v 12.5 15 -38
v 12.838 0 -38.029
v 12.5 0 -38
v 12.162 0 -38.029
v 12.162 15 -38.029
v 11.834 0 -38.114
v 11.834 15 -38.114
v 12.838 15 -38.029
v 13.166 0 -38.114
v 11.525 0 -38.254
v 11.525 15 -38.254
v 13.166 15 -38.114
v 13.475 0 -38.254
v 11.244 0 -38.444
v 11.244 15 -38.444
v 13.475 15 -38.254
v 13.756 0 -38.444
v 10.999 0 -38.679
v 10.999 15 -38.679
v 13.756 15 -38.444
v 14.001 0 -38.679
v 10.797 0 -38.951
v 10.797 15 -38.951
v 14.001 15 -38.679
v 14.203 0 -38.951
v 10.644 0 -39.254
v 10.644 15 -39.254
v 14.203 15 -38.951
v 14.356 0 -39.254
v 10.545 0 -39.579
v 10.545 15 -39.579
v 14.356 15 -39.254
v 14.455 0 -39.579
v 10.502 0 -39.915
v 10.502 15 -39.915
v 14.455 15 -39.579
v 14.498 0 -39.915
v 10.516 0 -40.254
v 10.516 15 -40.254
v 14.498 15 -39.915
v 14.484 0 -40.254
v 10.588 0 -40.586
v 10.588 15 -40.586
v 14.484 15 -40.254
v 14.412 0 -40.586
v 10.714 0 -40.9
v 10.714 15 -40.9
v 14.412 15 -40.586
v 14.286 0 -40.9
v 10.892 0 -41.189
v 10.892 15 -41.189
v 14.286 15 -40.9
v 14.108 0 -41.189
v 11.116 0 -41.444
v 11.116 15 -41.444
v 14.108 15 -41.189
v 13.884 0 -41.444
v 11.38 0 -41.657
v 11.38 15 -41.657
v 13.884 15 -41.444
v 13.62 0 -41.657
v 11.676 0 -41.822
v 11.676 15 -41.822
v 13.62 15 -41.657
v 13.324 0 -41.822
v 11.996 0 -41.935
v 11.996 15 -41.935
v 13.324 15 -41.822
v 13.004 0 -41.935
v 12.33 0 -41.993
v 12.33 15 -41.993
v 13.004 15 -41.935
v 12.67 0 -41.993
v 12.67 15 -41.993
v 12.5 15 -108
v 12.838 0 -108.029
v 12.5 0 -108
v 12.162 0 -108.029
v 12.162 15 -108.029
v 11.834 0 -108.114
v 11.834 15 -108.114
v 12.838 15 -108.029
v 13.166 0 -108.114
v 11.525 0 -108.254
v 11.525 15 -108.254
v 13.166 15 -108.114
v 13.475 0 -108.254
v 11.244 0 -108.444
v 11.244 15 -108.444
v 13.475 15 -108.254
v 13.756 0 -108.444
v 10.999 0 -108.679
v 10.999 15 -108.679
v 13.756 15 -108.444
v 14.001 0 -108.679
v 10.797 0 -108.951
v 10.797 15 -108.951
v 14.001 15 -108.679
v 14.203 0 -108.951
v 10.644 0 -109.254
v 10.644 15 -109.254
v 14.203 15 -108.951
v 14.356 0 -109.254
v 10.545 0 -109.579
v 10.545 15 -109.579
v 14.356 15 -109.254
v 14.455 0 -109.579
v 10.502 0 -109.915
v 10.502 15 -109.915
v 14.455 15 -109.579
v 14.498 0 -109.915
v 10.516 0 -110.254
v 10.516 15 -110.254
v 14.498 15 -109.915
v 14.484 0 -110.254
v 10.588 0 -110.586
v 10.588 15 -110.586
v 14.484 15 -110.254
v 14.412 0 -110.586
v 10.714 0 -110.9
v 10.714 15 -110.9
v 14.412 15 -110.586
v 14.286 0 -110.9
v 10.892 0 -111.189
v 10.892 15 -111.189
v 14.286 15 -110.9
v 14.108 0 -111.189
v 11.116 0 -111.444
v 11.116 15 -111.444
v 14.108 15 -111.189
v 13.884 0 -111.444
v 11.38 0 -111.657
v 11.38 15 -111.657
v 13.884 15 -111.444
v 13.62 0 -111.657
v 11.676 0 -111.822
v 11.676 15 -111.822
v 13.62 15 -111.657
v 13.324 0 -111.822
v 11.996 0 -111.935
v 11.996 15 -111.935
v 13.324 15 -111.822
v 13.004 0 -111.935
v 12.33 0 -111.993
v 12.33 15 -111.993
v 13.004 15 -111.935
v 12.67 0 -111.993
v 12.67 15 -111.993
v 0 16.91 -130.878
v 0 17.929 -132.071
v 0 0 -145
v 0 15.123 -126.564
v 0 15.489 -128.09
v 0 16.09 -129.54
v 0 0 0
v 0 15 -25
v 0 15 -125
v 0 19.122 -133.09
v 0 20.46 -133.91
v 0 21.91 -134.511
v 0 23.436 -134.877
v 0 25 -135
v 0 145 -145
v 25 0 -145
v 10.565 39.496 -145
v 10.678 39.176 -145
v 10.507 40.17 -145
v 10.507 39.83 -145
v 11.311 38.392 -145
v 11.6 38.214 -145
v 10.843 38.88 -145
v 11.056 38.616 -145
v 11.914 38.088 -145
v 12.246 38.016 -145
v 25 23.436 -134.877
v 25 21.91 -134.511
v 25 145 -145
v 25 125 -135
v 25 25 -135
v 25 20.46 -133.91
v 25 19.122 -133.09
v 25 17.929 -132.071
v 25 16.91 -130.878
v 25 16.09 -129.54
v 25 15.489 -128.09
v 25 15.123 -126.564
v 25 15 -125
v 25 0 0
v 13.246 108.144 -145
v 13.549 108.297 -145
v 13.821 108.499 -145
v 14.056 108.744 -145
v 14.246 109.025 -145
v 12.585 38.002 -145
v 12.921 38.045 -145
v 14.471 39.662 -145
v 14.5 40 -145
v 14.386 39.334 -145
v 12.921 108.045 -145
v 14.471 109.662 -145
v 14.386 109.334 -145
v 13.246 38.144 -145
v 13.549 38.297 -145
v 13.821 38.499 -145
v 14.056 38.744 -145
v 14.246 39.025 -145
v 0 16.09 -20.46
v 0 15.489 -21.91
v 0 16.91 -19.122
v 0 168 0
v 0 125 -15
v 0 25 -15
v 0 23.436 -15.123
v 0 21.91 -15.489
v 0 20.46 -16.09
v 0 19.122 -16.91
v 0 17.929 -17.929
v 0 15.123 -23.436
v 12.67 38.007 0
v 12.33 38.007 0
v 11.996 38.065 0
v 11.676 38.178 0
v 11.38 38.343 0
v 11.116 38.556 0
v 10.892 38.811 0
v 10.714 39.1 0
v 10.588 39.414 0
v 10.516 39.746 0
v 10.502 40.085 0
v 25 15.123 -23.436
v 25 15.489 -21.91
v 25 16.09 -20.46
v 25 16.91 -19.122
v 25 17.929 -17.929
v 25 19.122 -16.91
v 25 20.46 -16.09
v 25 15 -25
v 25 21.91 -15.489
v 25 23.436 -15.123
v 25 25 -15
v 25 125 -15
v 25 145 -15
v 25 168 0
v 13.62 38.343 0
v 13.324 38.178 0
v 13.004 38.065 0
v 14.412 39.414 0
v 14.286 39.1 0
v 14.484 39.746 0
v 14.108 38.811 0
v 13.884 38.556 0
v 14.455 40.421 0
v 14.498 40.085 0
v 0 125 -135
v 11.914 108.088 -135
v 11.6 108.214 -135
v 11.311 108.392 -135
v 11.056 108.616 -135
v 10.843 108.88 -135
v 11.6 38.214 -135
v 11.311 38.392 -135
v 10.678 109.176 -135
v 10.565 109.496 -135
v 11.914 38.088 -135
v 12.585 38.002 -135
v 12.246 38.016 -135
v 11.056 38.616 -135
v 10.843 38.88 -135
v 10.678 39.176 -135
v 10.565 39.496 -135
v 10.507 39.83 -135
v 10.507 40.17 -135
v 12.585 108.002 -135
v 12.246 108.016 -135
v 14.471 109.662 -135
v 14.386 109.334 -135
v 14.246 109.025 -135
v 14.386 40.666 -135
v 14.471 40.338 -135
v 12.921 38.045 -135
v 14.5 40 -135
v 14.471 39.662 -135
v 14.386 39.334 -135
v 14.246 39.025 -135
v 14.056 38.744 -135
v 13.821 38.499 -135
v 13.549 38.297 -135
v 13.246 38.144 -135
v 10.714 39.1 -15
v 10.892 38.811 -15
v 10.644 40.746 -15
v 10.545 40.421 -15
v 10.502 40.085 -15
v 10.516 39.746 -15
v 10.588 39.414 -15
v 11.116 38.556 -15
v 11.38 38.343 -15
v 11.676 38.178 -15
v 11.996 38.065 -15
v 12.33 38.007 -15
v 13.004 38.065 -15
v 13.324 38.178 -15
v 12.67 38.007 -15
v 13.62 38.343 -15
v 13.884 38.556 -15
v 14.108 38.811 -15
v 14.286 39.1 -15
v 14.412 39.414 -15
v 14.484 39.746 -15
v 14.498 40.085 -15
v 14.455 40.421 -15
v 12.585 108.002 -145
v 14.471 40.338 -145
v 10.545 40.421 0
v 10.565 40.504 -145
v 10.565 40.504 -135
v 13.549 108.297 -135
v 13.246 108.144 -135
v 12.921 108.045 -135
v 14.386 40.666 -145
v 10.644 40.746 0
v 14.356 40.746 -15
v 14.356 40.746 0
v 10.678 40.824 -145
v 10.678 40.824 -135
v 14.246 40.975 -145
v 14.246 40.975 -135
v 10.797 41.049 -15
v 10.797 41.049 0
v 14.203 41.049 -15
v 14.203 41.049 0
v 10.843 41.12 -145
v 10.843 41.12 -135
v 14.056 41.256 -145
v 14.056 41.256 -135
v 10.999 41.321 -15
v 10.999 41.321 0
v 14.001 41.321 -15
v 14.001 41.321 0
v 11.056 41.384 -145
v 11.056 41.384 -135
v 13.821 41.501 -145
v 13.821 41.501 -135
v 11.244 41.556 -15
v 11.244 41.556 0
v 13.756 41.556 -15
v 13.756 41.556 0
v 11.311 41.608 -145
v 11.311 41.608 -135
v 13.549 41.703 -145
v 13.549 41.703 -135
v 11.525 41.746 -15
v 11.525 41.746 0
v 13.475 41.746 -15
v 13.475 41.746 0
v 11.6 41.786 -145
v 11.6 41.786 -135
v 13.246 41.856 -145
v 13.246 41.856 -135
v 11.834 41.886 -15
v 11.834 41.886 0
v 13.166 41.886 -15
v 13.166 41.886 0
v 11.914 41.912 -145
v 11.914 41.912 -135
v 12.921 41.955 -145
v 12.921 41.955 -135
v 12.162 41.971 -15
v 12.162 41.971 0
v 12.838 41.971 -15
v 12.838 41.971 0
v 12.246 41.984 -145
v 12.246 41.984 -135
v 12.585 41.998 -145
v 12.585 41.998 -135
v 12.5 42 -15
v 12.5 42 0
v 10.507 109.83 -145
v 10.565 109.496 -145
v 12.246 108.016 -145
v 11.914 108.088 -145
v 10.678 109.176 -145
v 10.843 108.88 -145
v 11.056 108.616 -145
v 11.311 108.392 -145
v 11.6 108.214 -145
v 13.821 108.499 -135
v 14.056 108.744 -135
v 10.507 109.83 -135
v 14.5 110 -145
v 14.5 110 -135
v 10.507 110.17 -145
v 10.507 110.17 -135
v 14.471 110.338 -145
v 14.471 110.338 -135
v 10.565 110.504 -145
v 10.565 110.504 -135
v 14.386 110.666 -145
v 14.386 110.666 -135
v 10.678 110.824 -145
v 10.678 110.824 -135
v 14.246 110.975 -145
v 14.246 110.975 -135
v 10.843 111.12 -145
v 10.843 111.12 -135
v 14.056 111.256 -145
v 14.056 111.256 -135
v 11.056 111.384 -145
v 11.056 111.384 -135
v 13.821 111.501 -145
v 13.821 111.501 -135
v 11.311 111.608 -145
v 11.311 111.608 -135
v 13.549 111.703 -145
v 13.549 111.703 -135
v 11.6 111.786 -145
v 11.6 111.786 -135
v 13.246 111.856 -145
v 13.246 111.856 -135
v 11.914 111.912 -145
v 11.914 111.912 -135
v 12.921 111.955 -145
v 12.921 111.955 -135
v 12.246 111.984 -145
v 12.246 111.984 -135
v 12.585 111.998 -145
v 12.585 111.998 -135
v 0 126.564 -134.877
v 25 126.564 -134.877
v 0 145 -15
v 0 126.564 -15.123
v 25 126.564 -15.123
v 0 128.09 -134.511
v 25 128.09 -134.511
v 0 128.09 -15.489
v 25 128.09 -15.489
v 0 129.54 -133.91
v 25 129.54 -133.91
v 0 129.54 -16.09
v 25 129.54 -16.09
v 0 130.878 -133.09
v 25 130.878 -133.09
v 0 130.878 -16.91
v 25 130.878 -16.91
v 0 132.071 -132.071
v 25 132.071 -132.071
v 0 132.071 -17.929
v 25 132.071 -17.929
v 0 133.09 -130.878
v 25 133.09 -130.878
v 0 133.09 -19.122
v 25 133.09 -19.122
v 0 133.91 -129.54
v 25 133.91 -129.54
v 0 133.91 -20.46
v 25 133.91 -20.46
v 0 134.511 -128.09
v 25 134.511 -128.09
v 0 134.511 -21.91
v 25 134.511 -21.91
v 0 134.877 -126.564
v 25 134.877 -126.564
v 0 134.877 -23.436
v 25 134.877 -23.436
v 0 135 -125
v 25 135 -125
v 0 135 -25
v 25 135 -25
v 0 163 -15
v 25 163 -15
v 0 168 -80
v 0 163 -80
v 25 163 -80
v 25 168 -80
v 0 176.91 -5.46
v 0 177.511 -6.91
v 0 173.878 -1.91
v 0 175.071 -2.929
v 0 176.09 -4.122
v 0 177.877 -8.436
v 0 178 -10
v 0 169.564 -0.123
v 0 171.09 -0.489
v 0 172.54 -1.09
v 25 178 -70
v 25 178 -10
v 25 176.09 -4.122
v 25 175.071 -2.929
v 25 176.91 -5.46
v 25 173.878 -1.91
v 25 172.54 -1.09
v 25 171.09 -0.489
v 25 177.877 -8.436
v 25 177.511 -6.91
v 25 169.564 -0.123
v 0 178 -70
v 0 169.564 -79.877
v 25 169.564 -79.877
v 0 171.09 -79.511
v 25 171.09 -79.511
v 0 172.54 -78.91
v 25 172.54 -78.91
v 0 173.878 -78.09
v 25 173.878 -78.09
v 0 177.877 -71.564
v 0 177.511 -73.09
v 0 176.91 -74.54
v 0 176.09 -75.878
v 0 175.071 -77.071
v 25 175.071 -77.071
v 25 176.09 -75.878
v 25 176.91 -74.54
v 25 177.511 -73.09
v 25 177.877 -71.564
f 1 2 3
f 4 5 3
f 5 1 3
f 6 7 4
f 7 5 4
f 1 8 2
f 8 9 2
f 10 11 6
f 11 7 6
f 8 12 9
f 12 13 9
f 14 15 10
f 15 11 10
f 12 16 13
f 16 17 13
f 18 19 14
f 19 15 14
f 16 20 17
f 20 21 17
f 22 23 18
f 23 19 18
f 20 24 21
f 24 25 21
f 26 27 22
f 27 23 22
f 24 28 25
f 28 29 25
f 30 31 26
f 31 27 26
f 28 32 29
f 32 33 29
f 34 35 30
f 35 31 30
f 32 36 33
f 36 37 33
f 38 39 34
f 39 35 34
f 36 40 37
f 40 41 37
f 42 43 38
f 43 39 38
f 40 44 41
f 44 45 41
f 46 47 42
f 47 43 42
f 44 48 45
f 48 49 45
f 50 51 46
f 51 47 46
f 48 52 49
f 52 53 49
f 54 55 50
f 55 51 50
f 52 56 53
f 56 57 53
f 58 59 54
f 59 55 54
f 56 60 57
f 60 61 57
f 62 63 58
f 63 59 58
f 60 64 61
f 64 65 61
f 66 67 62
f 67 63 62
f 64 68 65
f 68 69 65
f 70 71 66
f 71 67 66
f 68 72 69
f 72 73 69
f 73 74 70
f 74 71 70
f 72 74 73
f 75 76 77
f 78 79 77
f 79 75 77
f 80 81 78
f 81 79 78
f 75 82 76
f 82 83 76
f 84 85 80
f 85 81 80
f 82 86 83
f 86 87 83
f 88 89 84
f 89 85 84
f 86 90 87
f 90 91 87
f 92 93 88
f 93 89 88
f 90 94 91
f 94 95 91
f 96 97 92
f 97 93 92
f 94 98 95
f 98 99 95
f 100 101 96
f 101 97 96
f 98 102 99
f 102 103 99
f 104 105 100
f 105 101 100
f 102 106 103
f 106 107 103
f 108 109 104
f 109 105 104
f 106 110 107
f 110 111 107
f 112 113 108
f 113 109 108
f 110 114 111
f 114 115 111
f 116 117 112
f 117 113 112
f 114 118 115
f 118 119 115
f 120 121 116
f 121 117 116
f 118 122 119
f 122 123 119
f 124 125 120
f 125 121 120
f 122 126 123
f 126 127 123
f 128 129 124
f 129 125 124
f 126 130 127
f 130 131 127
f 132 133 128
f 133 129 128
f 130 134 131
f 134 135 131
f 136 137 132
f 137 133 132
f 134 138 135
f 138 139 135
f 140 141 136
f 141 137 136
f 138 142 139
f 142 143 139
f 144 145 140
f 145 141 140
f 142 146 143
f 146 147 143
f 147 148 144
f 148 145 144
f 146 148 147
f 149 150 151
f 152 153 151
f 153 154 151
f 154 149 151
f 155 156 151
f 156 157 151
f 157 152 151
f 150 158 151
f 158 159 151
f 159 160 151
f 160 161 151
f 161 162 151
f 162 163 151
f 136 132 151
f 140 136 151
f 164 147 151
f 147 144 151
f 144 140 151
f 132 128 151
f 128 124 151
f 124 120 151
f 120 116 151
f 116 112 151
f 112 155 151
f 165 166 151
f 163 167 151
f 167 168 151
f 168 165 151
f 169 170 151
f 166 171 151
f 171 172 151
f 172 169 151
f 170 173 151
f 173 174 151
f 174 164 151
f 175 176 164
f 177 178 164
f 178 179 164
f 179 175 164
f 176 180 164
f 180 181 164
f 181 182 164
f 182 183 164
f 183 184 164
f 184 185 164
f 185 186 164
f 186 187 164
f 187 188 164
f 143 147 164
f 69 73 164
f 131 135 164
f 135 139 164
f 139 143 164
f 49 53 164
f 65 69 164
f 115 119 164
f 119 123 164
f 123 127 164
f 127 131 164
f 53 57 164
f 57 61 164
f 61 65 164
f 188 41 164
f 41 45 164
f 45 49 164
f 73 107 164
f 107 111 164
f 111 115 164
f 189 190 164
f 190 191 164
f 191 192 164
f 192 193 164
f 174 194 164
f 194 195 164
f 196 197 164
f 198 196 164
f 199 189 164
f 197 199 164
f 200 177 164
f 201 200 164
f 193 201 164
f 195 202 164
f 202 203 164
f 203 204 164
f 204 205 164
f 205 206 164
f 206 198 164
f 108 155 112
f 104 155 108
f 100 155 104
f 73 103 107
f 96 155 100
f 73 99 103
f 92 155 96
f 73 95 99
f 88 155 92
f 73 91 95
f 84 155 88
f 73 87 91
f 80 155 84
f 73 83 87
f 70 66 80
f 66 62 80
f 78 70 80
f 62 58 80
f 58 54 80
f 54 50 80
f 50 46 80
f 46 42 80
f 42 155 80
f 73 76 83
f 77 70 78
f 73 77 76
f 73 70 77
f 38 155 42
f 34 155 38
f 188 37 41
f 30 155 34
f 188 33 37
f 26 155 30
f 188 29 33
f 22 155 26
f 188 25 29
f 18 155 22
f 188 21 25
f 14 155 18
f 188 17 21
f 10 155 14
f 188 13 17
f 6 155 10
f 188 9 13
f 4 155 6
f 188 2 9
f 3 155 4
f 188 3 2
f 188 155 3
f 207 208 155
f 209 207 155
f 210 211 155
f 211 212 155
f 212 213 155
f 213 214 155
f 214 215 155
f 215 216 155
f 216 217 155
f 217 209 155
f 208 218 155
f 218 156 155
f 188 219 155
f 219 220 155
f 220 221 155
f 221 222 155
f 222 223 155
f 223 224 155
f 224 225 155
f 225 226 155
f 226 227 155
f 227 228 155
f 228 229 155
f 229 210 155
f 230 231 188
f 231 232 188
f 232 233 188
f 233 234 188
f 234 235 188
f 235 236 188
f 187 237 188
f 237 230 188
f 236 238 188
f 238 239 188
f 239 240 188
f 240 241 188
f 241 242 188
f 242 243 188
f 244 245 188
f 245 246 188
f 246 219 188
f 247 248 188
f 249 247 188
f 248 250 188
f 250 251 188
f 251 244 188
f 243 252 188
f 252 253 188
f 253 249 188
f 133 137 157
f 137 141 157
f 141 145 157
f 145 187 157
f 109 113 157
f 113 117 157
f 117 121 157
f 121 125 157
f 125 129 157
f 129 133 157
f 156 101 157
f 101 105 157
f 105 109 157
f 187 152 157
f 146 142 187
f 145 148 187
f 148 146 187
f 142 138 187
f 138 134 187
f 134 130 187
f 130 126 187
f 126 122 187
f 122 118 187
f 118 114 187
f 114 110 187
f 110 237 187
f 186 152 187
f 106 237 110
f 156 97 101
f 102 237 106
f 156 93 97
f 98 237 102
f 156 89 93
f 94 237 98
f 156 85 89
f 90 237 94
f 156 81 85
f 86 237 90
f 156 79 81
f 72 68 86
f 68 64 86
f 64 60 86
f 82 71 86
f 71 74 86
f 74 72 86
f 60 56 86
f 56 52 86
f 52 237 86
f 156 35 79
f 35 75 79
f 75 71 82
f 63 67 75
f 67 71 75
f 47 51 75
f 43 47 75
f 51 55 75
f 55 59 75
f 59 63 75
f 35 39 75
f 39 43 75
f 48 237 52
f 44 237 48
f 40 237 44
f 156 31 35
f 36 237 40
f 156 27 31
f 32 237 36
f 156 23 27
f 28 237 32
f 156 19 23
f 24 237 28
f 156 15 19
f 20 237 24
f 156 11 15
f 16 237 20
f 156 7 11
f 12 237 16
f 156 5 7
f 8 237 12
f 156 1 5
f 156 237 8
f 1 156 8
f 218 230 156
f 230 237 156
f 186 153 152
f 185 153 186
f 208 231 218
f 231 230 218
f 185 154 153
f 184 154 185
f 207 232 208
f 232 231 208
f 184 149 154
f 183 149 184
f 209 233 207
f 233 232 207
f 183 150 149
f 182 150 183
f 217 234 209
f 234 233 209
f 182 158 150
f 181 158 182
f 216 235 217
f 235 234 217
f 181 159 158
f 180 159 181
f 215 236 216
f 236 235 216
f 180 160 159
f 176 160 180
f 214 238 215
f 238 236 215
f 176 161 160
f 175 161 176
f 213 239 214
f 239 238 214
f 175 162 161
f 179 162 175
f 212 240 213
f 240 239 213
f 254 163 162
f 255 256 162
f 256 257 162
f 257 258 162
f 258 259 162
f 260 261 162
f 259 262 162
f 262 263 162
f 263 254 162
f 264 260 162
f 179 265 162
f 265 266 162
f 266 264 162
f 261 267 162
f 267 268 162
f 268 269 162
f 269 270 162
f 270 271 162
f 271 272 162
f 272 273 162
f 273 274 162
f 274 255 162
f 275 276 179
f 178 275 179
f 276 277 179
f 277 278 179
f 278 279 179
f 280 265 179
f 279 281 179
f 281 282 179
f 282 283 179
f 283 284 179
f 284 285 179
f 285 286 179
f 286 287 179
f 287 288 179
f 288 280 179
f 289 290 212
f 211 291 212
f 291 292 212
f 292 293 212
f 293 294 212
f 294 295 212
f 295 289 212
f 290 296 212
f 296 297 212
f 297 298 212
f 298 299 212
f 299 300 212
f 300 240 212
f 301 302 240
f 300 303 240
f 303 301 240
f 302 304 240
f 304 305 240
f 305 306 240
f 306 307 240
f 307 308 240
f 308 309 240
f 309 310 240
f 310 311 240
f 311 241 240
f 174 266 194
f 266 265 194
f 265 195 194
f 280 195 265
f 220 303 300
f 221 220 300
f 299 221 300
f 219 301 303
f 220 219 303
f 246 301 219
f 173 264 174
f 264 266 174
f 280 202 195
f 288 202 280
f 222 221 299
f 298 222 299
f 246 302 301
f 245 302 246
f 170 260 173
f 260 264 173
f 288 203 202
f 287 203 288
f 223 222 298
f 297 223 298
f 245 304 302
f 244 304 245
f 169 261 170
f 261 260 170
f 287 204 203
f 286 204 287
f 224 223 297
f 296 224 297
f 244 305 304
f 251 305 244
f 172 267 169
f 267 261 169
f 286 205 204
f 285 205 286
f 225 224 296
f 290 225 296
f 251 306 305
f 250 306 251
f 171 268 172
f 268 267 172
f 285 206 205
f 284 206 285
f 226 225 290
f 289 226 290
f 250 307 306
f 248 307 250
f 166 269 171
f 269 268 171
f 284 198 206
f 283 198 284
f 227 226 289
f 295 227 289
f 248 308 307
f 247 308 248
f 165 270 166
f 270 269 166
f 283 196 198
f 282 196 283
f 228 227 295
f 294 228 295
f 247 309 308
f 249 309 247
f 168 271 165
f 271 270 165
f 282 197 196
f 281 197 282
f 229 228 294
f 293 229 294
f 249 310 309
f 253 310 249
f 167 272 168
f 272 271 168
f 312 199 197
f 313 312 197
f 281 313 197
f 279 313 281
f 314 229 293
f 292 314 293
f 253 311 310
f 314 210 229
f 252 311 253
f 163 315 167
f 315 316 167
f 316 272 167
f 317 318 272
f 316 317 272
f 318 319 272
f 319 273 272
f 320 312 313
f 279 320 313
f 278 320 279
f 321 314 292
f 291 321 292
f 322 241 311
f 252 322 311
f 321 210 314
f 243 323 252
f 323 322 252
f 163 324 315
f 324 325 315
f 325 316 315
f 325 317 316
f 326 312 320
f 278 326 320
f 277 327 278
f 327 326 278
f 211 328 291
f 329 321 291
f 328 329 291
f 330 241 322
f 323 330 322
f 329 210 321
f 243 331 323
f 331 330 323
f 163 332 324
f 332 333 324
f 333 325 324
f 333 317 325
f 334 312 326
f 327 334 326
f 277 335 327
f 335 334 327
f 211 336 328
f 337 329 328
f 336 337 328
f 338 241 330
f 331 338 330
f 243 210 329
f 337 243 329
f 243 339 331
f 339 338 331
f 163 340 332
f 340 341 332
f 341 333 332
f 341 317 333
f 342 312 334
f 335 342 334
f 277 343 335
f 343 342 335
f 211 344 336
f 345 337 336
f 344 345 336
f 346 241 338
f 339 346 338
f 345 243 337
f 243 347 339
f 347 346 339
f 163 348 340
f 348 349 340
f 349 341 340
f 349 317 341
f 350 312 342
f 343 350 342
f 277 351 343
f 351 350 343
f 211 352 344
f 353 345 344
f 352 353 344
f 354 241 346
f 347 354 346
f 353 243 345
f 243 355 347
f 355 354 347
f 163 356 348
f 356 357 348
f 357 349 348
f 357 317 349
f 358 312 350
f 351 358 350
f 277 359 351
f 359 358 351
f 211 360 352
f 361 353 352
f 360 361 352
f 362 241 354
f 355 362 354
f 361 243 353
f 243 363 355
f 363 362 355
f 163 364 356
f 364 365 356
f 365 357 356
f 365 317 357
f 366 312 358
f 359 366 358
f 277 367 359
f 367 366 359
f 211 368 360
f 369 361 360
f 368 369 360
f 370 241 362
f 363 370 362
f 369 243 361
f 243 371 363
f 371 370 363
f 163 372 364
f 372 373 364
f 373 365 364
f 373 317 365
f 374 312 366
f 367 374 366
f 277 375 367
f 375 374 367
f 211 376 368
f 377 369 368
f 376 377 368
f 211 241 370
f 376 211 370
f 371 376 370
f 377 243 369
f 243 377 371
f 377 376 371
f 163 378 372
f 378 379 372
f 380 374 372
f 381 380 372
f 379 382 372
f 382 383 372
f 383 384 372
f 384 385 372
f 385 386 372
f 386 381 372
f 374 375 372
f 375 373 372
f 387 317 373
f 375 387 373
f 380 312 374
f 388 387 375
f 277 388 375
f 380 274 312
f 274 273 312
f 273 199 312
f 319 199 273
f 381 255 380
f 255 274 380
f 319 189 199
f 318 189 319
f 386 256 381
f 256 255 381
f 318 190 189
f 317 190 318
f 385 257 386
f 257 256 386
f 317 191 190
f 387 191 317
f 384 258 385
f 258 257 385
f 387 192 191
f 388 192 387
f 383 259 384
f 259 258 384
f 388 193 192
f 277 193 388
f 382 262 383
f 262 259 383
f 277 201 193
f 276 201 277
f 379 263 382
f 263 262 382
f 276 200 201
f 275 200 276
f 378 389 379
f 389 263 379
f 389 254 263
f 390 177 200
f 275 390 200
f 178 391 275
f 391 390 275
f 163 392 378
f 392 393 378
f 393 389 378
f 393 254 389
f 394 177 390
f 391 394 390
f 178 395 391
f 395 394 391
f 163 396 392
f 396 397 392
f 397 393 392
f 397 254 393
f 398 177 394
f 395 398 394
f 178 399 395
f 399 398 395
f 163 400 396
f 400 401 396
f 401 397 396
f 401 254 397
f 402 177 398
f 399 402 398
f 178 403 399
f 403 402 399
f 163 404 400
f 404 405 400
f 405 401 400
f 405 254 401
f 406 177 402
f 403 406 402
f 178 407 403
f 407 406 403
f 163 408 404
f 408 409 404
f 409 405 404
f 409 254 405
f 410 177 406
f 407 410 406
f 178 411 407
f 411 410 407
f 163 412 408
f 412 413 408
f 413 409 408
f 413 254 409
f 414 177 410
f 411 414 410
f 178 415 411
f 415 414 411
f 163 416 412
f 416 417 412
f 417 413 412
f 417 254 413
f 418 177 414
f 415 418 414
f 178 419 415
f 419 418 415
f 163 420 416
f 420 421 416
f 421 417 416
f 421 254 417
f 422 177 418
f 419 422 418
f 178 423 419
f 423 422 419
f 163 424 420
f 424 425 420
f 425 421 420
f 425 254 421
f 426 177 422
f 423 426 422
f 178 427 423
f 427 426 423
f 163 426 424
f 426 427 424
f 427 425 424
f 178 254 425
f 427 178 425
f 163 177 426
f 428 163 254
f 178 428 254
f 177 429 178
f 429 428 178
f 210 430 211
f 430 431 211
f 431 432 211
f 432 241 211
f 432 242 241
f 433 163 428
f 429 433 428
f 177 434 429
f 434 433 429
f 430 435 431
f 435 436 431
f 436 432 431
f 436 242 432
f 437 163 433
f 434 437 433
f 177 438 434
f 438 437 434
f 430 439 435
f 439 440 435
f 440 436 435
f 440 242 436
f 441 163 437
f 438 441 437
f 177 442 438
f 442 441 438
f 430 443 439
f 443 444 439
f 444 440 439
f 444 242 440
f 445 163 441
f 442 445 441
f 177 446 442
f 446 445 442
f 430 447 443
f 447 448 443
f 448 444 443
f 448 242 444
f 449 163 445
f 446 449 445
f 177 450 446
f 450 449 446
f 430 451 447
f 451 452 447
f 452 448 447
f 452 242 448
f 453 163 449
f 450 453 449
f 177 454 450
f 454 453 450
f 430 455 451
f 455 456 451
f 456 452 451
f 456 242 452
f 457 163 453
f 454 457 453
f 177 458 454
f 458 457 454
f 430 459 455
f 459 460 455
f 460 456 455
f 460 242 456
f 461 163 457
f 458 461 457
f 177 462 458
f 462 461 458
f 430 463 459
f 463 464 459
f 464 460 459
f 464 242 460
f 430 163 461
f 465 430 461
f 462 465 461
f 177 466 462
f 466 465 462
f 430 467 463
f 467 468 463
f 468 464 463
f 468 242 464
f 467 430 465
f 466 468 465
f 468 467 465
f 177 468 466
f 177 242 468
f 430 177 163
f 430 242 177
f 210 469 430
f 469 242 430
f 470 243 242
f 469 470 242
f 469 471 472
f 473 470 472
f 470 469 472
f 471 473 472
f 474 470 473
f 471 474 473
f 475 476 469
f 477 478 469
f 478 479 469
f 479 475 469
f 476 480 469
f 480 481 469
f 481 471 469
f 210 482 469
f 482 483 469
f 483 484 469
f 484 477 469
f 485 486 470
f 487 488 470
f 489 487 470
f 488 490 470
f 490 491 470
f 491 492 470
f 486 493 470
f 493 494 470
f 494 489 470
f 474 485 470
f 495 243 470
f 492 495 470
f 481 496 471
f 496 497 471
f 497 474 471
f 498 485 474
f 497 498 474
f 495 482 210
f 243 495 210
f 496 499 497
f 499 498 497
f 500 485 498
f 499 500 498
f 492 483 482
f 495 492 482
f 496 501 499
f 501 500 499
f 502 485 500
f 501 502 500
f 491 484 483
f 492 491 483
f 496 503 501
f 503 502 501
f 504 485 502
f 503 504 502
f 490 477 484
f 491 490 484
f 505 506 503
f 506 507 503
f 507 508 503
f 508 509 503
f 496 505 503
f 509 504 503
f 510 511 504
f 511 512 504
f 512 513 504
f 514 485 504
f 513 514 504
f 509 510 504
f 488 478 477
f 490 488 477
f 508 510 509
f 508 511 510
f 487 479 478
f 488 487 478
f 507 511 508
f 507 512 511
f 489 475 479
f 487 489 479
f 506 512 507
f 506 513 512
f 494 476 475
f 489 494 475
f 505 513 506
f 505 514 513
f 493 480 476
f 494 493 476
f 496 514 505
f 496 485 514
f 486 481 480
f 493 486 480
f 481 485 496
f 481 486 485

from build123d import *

# Parameters (mm, degrees)
ESQUISSE1_W             = 120
ESQUISSE1_H             = 120
BOSS_EXTRU_1_DEPTH      = 25
ESQUISSE2_R             = 2
ENL_V_MAT_EXTRU_1_DEPTH = 220.588251052
ESQUISSE3_R             = 2
ENL_V_MAT_EXTRU_2_DEPTH = 225.797686821
ESQUISSE4_R             = 2
ENL_V_MAT_EXTRU_3_DEPTH = 222.831016767
CONG_1_R                = 10
CONG_2_R                = 10


with BuildPart() as part:
    # Esquisse1 → Boss.-Extru.1 (new body)
    with BuildSketch(Plane(origin=(0, 0, 0), x_dir=(0, 0, -1), z_dir=(1, 0, 0))):
        Polygon((0, 0), (145, 0), (145, 145), (15, 145), (15, 163), (80, 163), (80, 178), (0, 178), align=None)
        with Locations((75, 75)):
            Rectangle(ESQUISSE1_W, ESQUISSE1_H, mode=Mode.SUBTRACT)
    extrude(amount=BOSS_EXTRU_1_DEPTH)

    # Esquisse2 → Enlèv. mat.-Extru.1 (cut, through all)
    with BuildSketch(Plane(origin=(0, 15, 0), x_dir=(1, 0, 0), z_dir=(0, 1, 0))):
        with Locations(Location((12.5, 40, 0), (0, 0, 270))):
            Circle(ESQUISSE2_R)
        with Locations(Location((12.5, 110, 0), (0, 0, 270))):
            Circle(ESQUISSE2_R)
    extrude(amount=-ENL_V_MAT_EXTRU_1_DEPTH, mode=Mode.SUBTRACT)

    # Esquisse3 → Enlèv. mat.-Extru.2 (cut, through all)
    with BuildSketch(Plane.XY.offset(-135)):
        with Locations((12.5, 40)):
            Circle(ESQUISSE3_R)
        with Locations((12.5, 110)):
            Circle(ESQUISSE3_R)
    extrude(amount=-ENL_V_MAT_EXTRU_2_DEPTH, mode=Mode.SUBTRACT)

    # Esquisse4 → Enlèv. mat.-Extru.3 (cut, through all)
    with BuildSketch(Plane(origin=(0, 0, -15), x_dir=(-1, 0, 0), z_dir=(0, 0, -1))):
        with Locations(Location((-12.5, 40, 0), (0, 0, 180))):
            Circle(ESQUISSE4_R)
    extrude(amount=-ENL_V_MAT_EXTRU_3_DEPTH, mode=Mode.SUBTRACT)

    # Congé1
    cong_1_edges = [part.edges().sort_by_distance(p)[0] for p in [
        (12.5, 178, 0),
        (12.5, 178, -80),
    ]]
    fillet(cong_1_edges, radius=CONG_1_R)

    # Congé2
    cong_2_edges = [part.edges().sort_by_distance(p)[0] for p in [
        (12.5, 135, -135),
        (12.5, 135, -15),
        (12.5, 15, -15),
        (12.5, 15, -135),
    ]]
    fillet(cong_2_edges, radius=CONG_2_R)


solid = part.part
